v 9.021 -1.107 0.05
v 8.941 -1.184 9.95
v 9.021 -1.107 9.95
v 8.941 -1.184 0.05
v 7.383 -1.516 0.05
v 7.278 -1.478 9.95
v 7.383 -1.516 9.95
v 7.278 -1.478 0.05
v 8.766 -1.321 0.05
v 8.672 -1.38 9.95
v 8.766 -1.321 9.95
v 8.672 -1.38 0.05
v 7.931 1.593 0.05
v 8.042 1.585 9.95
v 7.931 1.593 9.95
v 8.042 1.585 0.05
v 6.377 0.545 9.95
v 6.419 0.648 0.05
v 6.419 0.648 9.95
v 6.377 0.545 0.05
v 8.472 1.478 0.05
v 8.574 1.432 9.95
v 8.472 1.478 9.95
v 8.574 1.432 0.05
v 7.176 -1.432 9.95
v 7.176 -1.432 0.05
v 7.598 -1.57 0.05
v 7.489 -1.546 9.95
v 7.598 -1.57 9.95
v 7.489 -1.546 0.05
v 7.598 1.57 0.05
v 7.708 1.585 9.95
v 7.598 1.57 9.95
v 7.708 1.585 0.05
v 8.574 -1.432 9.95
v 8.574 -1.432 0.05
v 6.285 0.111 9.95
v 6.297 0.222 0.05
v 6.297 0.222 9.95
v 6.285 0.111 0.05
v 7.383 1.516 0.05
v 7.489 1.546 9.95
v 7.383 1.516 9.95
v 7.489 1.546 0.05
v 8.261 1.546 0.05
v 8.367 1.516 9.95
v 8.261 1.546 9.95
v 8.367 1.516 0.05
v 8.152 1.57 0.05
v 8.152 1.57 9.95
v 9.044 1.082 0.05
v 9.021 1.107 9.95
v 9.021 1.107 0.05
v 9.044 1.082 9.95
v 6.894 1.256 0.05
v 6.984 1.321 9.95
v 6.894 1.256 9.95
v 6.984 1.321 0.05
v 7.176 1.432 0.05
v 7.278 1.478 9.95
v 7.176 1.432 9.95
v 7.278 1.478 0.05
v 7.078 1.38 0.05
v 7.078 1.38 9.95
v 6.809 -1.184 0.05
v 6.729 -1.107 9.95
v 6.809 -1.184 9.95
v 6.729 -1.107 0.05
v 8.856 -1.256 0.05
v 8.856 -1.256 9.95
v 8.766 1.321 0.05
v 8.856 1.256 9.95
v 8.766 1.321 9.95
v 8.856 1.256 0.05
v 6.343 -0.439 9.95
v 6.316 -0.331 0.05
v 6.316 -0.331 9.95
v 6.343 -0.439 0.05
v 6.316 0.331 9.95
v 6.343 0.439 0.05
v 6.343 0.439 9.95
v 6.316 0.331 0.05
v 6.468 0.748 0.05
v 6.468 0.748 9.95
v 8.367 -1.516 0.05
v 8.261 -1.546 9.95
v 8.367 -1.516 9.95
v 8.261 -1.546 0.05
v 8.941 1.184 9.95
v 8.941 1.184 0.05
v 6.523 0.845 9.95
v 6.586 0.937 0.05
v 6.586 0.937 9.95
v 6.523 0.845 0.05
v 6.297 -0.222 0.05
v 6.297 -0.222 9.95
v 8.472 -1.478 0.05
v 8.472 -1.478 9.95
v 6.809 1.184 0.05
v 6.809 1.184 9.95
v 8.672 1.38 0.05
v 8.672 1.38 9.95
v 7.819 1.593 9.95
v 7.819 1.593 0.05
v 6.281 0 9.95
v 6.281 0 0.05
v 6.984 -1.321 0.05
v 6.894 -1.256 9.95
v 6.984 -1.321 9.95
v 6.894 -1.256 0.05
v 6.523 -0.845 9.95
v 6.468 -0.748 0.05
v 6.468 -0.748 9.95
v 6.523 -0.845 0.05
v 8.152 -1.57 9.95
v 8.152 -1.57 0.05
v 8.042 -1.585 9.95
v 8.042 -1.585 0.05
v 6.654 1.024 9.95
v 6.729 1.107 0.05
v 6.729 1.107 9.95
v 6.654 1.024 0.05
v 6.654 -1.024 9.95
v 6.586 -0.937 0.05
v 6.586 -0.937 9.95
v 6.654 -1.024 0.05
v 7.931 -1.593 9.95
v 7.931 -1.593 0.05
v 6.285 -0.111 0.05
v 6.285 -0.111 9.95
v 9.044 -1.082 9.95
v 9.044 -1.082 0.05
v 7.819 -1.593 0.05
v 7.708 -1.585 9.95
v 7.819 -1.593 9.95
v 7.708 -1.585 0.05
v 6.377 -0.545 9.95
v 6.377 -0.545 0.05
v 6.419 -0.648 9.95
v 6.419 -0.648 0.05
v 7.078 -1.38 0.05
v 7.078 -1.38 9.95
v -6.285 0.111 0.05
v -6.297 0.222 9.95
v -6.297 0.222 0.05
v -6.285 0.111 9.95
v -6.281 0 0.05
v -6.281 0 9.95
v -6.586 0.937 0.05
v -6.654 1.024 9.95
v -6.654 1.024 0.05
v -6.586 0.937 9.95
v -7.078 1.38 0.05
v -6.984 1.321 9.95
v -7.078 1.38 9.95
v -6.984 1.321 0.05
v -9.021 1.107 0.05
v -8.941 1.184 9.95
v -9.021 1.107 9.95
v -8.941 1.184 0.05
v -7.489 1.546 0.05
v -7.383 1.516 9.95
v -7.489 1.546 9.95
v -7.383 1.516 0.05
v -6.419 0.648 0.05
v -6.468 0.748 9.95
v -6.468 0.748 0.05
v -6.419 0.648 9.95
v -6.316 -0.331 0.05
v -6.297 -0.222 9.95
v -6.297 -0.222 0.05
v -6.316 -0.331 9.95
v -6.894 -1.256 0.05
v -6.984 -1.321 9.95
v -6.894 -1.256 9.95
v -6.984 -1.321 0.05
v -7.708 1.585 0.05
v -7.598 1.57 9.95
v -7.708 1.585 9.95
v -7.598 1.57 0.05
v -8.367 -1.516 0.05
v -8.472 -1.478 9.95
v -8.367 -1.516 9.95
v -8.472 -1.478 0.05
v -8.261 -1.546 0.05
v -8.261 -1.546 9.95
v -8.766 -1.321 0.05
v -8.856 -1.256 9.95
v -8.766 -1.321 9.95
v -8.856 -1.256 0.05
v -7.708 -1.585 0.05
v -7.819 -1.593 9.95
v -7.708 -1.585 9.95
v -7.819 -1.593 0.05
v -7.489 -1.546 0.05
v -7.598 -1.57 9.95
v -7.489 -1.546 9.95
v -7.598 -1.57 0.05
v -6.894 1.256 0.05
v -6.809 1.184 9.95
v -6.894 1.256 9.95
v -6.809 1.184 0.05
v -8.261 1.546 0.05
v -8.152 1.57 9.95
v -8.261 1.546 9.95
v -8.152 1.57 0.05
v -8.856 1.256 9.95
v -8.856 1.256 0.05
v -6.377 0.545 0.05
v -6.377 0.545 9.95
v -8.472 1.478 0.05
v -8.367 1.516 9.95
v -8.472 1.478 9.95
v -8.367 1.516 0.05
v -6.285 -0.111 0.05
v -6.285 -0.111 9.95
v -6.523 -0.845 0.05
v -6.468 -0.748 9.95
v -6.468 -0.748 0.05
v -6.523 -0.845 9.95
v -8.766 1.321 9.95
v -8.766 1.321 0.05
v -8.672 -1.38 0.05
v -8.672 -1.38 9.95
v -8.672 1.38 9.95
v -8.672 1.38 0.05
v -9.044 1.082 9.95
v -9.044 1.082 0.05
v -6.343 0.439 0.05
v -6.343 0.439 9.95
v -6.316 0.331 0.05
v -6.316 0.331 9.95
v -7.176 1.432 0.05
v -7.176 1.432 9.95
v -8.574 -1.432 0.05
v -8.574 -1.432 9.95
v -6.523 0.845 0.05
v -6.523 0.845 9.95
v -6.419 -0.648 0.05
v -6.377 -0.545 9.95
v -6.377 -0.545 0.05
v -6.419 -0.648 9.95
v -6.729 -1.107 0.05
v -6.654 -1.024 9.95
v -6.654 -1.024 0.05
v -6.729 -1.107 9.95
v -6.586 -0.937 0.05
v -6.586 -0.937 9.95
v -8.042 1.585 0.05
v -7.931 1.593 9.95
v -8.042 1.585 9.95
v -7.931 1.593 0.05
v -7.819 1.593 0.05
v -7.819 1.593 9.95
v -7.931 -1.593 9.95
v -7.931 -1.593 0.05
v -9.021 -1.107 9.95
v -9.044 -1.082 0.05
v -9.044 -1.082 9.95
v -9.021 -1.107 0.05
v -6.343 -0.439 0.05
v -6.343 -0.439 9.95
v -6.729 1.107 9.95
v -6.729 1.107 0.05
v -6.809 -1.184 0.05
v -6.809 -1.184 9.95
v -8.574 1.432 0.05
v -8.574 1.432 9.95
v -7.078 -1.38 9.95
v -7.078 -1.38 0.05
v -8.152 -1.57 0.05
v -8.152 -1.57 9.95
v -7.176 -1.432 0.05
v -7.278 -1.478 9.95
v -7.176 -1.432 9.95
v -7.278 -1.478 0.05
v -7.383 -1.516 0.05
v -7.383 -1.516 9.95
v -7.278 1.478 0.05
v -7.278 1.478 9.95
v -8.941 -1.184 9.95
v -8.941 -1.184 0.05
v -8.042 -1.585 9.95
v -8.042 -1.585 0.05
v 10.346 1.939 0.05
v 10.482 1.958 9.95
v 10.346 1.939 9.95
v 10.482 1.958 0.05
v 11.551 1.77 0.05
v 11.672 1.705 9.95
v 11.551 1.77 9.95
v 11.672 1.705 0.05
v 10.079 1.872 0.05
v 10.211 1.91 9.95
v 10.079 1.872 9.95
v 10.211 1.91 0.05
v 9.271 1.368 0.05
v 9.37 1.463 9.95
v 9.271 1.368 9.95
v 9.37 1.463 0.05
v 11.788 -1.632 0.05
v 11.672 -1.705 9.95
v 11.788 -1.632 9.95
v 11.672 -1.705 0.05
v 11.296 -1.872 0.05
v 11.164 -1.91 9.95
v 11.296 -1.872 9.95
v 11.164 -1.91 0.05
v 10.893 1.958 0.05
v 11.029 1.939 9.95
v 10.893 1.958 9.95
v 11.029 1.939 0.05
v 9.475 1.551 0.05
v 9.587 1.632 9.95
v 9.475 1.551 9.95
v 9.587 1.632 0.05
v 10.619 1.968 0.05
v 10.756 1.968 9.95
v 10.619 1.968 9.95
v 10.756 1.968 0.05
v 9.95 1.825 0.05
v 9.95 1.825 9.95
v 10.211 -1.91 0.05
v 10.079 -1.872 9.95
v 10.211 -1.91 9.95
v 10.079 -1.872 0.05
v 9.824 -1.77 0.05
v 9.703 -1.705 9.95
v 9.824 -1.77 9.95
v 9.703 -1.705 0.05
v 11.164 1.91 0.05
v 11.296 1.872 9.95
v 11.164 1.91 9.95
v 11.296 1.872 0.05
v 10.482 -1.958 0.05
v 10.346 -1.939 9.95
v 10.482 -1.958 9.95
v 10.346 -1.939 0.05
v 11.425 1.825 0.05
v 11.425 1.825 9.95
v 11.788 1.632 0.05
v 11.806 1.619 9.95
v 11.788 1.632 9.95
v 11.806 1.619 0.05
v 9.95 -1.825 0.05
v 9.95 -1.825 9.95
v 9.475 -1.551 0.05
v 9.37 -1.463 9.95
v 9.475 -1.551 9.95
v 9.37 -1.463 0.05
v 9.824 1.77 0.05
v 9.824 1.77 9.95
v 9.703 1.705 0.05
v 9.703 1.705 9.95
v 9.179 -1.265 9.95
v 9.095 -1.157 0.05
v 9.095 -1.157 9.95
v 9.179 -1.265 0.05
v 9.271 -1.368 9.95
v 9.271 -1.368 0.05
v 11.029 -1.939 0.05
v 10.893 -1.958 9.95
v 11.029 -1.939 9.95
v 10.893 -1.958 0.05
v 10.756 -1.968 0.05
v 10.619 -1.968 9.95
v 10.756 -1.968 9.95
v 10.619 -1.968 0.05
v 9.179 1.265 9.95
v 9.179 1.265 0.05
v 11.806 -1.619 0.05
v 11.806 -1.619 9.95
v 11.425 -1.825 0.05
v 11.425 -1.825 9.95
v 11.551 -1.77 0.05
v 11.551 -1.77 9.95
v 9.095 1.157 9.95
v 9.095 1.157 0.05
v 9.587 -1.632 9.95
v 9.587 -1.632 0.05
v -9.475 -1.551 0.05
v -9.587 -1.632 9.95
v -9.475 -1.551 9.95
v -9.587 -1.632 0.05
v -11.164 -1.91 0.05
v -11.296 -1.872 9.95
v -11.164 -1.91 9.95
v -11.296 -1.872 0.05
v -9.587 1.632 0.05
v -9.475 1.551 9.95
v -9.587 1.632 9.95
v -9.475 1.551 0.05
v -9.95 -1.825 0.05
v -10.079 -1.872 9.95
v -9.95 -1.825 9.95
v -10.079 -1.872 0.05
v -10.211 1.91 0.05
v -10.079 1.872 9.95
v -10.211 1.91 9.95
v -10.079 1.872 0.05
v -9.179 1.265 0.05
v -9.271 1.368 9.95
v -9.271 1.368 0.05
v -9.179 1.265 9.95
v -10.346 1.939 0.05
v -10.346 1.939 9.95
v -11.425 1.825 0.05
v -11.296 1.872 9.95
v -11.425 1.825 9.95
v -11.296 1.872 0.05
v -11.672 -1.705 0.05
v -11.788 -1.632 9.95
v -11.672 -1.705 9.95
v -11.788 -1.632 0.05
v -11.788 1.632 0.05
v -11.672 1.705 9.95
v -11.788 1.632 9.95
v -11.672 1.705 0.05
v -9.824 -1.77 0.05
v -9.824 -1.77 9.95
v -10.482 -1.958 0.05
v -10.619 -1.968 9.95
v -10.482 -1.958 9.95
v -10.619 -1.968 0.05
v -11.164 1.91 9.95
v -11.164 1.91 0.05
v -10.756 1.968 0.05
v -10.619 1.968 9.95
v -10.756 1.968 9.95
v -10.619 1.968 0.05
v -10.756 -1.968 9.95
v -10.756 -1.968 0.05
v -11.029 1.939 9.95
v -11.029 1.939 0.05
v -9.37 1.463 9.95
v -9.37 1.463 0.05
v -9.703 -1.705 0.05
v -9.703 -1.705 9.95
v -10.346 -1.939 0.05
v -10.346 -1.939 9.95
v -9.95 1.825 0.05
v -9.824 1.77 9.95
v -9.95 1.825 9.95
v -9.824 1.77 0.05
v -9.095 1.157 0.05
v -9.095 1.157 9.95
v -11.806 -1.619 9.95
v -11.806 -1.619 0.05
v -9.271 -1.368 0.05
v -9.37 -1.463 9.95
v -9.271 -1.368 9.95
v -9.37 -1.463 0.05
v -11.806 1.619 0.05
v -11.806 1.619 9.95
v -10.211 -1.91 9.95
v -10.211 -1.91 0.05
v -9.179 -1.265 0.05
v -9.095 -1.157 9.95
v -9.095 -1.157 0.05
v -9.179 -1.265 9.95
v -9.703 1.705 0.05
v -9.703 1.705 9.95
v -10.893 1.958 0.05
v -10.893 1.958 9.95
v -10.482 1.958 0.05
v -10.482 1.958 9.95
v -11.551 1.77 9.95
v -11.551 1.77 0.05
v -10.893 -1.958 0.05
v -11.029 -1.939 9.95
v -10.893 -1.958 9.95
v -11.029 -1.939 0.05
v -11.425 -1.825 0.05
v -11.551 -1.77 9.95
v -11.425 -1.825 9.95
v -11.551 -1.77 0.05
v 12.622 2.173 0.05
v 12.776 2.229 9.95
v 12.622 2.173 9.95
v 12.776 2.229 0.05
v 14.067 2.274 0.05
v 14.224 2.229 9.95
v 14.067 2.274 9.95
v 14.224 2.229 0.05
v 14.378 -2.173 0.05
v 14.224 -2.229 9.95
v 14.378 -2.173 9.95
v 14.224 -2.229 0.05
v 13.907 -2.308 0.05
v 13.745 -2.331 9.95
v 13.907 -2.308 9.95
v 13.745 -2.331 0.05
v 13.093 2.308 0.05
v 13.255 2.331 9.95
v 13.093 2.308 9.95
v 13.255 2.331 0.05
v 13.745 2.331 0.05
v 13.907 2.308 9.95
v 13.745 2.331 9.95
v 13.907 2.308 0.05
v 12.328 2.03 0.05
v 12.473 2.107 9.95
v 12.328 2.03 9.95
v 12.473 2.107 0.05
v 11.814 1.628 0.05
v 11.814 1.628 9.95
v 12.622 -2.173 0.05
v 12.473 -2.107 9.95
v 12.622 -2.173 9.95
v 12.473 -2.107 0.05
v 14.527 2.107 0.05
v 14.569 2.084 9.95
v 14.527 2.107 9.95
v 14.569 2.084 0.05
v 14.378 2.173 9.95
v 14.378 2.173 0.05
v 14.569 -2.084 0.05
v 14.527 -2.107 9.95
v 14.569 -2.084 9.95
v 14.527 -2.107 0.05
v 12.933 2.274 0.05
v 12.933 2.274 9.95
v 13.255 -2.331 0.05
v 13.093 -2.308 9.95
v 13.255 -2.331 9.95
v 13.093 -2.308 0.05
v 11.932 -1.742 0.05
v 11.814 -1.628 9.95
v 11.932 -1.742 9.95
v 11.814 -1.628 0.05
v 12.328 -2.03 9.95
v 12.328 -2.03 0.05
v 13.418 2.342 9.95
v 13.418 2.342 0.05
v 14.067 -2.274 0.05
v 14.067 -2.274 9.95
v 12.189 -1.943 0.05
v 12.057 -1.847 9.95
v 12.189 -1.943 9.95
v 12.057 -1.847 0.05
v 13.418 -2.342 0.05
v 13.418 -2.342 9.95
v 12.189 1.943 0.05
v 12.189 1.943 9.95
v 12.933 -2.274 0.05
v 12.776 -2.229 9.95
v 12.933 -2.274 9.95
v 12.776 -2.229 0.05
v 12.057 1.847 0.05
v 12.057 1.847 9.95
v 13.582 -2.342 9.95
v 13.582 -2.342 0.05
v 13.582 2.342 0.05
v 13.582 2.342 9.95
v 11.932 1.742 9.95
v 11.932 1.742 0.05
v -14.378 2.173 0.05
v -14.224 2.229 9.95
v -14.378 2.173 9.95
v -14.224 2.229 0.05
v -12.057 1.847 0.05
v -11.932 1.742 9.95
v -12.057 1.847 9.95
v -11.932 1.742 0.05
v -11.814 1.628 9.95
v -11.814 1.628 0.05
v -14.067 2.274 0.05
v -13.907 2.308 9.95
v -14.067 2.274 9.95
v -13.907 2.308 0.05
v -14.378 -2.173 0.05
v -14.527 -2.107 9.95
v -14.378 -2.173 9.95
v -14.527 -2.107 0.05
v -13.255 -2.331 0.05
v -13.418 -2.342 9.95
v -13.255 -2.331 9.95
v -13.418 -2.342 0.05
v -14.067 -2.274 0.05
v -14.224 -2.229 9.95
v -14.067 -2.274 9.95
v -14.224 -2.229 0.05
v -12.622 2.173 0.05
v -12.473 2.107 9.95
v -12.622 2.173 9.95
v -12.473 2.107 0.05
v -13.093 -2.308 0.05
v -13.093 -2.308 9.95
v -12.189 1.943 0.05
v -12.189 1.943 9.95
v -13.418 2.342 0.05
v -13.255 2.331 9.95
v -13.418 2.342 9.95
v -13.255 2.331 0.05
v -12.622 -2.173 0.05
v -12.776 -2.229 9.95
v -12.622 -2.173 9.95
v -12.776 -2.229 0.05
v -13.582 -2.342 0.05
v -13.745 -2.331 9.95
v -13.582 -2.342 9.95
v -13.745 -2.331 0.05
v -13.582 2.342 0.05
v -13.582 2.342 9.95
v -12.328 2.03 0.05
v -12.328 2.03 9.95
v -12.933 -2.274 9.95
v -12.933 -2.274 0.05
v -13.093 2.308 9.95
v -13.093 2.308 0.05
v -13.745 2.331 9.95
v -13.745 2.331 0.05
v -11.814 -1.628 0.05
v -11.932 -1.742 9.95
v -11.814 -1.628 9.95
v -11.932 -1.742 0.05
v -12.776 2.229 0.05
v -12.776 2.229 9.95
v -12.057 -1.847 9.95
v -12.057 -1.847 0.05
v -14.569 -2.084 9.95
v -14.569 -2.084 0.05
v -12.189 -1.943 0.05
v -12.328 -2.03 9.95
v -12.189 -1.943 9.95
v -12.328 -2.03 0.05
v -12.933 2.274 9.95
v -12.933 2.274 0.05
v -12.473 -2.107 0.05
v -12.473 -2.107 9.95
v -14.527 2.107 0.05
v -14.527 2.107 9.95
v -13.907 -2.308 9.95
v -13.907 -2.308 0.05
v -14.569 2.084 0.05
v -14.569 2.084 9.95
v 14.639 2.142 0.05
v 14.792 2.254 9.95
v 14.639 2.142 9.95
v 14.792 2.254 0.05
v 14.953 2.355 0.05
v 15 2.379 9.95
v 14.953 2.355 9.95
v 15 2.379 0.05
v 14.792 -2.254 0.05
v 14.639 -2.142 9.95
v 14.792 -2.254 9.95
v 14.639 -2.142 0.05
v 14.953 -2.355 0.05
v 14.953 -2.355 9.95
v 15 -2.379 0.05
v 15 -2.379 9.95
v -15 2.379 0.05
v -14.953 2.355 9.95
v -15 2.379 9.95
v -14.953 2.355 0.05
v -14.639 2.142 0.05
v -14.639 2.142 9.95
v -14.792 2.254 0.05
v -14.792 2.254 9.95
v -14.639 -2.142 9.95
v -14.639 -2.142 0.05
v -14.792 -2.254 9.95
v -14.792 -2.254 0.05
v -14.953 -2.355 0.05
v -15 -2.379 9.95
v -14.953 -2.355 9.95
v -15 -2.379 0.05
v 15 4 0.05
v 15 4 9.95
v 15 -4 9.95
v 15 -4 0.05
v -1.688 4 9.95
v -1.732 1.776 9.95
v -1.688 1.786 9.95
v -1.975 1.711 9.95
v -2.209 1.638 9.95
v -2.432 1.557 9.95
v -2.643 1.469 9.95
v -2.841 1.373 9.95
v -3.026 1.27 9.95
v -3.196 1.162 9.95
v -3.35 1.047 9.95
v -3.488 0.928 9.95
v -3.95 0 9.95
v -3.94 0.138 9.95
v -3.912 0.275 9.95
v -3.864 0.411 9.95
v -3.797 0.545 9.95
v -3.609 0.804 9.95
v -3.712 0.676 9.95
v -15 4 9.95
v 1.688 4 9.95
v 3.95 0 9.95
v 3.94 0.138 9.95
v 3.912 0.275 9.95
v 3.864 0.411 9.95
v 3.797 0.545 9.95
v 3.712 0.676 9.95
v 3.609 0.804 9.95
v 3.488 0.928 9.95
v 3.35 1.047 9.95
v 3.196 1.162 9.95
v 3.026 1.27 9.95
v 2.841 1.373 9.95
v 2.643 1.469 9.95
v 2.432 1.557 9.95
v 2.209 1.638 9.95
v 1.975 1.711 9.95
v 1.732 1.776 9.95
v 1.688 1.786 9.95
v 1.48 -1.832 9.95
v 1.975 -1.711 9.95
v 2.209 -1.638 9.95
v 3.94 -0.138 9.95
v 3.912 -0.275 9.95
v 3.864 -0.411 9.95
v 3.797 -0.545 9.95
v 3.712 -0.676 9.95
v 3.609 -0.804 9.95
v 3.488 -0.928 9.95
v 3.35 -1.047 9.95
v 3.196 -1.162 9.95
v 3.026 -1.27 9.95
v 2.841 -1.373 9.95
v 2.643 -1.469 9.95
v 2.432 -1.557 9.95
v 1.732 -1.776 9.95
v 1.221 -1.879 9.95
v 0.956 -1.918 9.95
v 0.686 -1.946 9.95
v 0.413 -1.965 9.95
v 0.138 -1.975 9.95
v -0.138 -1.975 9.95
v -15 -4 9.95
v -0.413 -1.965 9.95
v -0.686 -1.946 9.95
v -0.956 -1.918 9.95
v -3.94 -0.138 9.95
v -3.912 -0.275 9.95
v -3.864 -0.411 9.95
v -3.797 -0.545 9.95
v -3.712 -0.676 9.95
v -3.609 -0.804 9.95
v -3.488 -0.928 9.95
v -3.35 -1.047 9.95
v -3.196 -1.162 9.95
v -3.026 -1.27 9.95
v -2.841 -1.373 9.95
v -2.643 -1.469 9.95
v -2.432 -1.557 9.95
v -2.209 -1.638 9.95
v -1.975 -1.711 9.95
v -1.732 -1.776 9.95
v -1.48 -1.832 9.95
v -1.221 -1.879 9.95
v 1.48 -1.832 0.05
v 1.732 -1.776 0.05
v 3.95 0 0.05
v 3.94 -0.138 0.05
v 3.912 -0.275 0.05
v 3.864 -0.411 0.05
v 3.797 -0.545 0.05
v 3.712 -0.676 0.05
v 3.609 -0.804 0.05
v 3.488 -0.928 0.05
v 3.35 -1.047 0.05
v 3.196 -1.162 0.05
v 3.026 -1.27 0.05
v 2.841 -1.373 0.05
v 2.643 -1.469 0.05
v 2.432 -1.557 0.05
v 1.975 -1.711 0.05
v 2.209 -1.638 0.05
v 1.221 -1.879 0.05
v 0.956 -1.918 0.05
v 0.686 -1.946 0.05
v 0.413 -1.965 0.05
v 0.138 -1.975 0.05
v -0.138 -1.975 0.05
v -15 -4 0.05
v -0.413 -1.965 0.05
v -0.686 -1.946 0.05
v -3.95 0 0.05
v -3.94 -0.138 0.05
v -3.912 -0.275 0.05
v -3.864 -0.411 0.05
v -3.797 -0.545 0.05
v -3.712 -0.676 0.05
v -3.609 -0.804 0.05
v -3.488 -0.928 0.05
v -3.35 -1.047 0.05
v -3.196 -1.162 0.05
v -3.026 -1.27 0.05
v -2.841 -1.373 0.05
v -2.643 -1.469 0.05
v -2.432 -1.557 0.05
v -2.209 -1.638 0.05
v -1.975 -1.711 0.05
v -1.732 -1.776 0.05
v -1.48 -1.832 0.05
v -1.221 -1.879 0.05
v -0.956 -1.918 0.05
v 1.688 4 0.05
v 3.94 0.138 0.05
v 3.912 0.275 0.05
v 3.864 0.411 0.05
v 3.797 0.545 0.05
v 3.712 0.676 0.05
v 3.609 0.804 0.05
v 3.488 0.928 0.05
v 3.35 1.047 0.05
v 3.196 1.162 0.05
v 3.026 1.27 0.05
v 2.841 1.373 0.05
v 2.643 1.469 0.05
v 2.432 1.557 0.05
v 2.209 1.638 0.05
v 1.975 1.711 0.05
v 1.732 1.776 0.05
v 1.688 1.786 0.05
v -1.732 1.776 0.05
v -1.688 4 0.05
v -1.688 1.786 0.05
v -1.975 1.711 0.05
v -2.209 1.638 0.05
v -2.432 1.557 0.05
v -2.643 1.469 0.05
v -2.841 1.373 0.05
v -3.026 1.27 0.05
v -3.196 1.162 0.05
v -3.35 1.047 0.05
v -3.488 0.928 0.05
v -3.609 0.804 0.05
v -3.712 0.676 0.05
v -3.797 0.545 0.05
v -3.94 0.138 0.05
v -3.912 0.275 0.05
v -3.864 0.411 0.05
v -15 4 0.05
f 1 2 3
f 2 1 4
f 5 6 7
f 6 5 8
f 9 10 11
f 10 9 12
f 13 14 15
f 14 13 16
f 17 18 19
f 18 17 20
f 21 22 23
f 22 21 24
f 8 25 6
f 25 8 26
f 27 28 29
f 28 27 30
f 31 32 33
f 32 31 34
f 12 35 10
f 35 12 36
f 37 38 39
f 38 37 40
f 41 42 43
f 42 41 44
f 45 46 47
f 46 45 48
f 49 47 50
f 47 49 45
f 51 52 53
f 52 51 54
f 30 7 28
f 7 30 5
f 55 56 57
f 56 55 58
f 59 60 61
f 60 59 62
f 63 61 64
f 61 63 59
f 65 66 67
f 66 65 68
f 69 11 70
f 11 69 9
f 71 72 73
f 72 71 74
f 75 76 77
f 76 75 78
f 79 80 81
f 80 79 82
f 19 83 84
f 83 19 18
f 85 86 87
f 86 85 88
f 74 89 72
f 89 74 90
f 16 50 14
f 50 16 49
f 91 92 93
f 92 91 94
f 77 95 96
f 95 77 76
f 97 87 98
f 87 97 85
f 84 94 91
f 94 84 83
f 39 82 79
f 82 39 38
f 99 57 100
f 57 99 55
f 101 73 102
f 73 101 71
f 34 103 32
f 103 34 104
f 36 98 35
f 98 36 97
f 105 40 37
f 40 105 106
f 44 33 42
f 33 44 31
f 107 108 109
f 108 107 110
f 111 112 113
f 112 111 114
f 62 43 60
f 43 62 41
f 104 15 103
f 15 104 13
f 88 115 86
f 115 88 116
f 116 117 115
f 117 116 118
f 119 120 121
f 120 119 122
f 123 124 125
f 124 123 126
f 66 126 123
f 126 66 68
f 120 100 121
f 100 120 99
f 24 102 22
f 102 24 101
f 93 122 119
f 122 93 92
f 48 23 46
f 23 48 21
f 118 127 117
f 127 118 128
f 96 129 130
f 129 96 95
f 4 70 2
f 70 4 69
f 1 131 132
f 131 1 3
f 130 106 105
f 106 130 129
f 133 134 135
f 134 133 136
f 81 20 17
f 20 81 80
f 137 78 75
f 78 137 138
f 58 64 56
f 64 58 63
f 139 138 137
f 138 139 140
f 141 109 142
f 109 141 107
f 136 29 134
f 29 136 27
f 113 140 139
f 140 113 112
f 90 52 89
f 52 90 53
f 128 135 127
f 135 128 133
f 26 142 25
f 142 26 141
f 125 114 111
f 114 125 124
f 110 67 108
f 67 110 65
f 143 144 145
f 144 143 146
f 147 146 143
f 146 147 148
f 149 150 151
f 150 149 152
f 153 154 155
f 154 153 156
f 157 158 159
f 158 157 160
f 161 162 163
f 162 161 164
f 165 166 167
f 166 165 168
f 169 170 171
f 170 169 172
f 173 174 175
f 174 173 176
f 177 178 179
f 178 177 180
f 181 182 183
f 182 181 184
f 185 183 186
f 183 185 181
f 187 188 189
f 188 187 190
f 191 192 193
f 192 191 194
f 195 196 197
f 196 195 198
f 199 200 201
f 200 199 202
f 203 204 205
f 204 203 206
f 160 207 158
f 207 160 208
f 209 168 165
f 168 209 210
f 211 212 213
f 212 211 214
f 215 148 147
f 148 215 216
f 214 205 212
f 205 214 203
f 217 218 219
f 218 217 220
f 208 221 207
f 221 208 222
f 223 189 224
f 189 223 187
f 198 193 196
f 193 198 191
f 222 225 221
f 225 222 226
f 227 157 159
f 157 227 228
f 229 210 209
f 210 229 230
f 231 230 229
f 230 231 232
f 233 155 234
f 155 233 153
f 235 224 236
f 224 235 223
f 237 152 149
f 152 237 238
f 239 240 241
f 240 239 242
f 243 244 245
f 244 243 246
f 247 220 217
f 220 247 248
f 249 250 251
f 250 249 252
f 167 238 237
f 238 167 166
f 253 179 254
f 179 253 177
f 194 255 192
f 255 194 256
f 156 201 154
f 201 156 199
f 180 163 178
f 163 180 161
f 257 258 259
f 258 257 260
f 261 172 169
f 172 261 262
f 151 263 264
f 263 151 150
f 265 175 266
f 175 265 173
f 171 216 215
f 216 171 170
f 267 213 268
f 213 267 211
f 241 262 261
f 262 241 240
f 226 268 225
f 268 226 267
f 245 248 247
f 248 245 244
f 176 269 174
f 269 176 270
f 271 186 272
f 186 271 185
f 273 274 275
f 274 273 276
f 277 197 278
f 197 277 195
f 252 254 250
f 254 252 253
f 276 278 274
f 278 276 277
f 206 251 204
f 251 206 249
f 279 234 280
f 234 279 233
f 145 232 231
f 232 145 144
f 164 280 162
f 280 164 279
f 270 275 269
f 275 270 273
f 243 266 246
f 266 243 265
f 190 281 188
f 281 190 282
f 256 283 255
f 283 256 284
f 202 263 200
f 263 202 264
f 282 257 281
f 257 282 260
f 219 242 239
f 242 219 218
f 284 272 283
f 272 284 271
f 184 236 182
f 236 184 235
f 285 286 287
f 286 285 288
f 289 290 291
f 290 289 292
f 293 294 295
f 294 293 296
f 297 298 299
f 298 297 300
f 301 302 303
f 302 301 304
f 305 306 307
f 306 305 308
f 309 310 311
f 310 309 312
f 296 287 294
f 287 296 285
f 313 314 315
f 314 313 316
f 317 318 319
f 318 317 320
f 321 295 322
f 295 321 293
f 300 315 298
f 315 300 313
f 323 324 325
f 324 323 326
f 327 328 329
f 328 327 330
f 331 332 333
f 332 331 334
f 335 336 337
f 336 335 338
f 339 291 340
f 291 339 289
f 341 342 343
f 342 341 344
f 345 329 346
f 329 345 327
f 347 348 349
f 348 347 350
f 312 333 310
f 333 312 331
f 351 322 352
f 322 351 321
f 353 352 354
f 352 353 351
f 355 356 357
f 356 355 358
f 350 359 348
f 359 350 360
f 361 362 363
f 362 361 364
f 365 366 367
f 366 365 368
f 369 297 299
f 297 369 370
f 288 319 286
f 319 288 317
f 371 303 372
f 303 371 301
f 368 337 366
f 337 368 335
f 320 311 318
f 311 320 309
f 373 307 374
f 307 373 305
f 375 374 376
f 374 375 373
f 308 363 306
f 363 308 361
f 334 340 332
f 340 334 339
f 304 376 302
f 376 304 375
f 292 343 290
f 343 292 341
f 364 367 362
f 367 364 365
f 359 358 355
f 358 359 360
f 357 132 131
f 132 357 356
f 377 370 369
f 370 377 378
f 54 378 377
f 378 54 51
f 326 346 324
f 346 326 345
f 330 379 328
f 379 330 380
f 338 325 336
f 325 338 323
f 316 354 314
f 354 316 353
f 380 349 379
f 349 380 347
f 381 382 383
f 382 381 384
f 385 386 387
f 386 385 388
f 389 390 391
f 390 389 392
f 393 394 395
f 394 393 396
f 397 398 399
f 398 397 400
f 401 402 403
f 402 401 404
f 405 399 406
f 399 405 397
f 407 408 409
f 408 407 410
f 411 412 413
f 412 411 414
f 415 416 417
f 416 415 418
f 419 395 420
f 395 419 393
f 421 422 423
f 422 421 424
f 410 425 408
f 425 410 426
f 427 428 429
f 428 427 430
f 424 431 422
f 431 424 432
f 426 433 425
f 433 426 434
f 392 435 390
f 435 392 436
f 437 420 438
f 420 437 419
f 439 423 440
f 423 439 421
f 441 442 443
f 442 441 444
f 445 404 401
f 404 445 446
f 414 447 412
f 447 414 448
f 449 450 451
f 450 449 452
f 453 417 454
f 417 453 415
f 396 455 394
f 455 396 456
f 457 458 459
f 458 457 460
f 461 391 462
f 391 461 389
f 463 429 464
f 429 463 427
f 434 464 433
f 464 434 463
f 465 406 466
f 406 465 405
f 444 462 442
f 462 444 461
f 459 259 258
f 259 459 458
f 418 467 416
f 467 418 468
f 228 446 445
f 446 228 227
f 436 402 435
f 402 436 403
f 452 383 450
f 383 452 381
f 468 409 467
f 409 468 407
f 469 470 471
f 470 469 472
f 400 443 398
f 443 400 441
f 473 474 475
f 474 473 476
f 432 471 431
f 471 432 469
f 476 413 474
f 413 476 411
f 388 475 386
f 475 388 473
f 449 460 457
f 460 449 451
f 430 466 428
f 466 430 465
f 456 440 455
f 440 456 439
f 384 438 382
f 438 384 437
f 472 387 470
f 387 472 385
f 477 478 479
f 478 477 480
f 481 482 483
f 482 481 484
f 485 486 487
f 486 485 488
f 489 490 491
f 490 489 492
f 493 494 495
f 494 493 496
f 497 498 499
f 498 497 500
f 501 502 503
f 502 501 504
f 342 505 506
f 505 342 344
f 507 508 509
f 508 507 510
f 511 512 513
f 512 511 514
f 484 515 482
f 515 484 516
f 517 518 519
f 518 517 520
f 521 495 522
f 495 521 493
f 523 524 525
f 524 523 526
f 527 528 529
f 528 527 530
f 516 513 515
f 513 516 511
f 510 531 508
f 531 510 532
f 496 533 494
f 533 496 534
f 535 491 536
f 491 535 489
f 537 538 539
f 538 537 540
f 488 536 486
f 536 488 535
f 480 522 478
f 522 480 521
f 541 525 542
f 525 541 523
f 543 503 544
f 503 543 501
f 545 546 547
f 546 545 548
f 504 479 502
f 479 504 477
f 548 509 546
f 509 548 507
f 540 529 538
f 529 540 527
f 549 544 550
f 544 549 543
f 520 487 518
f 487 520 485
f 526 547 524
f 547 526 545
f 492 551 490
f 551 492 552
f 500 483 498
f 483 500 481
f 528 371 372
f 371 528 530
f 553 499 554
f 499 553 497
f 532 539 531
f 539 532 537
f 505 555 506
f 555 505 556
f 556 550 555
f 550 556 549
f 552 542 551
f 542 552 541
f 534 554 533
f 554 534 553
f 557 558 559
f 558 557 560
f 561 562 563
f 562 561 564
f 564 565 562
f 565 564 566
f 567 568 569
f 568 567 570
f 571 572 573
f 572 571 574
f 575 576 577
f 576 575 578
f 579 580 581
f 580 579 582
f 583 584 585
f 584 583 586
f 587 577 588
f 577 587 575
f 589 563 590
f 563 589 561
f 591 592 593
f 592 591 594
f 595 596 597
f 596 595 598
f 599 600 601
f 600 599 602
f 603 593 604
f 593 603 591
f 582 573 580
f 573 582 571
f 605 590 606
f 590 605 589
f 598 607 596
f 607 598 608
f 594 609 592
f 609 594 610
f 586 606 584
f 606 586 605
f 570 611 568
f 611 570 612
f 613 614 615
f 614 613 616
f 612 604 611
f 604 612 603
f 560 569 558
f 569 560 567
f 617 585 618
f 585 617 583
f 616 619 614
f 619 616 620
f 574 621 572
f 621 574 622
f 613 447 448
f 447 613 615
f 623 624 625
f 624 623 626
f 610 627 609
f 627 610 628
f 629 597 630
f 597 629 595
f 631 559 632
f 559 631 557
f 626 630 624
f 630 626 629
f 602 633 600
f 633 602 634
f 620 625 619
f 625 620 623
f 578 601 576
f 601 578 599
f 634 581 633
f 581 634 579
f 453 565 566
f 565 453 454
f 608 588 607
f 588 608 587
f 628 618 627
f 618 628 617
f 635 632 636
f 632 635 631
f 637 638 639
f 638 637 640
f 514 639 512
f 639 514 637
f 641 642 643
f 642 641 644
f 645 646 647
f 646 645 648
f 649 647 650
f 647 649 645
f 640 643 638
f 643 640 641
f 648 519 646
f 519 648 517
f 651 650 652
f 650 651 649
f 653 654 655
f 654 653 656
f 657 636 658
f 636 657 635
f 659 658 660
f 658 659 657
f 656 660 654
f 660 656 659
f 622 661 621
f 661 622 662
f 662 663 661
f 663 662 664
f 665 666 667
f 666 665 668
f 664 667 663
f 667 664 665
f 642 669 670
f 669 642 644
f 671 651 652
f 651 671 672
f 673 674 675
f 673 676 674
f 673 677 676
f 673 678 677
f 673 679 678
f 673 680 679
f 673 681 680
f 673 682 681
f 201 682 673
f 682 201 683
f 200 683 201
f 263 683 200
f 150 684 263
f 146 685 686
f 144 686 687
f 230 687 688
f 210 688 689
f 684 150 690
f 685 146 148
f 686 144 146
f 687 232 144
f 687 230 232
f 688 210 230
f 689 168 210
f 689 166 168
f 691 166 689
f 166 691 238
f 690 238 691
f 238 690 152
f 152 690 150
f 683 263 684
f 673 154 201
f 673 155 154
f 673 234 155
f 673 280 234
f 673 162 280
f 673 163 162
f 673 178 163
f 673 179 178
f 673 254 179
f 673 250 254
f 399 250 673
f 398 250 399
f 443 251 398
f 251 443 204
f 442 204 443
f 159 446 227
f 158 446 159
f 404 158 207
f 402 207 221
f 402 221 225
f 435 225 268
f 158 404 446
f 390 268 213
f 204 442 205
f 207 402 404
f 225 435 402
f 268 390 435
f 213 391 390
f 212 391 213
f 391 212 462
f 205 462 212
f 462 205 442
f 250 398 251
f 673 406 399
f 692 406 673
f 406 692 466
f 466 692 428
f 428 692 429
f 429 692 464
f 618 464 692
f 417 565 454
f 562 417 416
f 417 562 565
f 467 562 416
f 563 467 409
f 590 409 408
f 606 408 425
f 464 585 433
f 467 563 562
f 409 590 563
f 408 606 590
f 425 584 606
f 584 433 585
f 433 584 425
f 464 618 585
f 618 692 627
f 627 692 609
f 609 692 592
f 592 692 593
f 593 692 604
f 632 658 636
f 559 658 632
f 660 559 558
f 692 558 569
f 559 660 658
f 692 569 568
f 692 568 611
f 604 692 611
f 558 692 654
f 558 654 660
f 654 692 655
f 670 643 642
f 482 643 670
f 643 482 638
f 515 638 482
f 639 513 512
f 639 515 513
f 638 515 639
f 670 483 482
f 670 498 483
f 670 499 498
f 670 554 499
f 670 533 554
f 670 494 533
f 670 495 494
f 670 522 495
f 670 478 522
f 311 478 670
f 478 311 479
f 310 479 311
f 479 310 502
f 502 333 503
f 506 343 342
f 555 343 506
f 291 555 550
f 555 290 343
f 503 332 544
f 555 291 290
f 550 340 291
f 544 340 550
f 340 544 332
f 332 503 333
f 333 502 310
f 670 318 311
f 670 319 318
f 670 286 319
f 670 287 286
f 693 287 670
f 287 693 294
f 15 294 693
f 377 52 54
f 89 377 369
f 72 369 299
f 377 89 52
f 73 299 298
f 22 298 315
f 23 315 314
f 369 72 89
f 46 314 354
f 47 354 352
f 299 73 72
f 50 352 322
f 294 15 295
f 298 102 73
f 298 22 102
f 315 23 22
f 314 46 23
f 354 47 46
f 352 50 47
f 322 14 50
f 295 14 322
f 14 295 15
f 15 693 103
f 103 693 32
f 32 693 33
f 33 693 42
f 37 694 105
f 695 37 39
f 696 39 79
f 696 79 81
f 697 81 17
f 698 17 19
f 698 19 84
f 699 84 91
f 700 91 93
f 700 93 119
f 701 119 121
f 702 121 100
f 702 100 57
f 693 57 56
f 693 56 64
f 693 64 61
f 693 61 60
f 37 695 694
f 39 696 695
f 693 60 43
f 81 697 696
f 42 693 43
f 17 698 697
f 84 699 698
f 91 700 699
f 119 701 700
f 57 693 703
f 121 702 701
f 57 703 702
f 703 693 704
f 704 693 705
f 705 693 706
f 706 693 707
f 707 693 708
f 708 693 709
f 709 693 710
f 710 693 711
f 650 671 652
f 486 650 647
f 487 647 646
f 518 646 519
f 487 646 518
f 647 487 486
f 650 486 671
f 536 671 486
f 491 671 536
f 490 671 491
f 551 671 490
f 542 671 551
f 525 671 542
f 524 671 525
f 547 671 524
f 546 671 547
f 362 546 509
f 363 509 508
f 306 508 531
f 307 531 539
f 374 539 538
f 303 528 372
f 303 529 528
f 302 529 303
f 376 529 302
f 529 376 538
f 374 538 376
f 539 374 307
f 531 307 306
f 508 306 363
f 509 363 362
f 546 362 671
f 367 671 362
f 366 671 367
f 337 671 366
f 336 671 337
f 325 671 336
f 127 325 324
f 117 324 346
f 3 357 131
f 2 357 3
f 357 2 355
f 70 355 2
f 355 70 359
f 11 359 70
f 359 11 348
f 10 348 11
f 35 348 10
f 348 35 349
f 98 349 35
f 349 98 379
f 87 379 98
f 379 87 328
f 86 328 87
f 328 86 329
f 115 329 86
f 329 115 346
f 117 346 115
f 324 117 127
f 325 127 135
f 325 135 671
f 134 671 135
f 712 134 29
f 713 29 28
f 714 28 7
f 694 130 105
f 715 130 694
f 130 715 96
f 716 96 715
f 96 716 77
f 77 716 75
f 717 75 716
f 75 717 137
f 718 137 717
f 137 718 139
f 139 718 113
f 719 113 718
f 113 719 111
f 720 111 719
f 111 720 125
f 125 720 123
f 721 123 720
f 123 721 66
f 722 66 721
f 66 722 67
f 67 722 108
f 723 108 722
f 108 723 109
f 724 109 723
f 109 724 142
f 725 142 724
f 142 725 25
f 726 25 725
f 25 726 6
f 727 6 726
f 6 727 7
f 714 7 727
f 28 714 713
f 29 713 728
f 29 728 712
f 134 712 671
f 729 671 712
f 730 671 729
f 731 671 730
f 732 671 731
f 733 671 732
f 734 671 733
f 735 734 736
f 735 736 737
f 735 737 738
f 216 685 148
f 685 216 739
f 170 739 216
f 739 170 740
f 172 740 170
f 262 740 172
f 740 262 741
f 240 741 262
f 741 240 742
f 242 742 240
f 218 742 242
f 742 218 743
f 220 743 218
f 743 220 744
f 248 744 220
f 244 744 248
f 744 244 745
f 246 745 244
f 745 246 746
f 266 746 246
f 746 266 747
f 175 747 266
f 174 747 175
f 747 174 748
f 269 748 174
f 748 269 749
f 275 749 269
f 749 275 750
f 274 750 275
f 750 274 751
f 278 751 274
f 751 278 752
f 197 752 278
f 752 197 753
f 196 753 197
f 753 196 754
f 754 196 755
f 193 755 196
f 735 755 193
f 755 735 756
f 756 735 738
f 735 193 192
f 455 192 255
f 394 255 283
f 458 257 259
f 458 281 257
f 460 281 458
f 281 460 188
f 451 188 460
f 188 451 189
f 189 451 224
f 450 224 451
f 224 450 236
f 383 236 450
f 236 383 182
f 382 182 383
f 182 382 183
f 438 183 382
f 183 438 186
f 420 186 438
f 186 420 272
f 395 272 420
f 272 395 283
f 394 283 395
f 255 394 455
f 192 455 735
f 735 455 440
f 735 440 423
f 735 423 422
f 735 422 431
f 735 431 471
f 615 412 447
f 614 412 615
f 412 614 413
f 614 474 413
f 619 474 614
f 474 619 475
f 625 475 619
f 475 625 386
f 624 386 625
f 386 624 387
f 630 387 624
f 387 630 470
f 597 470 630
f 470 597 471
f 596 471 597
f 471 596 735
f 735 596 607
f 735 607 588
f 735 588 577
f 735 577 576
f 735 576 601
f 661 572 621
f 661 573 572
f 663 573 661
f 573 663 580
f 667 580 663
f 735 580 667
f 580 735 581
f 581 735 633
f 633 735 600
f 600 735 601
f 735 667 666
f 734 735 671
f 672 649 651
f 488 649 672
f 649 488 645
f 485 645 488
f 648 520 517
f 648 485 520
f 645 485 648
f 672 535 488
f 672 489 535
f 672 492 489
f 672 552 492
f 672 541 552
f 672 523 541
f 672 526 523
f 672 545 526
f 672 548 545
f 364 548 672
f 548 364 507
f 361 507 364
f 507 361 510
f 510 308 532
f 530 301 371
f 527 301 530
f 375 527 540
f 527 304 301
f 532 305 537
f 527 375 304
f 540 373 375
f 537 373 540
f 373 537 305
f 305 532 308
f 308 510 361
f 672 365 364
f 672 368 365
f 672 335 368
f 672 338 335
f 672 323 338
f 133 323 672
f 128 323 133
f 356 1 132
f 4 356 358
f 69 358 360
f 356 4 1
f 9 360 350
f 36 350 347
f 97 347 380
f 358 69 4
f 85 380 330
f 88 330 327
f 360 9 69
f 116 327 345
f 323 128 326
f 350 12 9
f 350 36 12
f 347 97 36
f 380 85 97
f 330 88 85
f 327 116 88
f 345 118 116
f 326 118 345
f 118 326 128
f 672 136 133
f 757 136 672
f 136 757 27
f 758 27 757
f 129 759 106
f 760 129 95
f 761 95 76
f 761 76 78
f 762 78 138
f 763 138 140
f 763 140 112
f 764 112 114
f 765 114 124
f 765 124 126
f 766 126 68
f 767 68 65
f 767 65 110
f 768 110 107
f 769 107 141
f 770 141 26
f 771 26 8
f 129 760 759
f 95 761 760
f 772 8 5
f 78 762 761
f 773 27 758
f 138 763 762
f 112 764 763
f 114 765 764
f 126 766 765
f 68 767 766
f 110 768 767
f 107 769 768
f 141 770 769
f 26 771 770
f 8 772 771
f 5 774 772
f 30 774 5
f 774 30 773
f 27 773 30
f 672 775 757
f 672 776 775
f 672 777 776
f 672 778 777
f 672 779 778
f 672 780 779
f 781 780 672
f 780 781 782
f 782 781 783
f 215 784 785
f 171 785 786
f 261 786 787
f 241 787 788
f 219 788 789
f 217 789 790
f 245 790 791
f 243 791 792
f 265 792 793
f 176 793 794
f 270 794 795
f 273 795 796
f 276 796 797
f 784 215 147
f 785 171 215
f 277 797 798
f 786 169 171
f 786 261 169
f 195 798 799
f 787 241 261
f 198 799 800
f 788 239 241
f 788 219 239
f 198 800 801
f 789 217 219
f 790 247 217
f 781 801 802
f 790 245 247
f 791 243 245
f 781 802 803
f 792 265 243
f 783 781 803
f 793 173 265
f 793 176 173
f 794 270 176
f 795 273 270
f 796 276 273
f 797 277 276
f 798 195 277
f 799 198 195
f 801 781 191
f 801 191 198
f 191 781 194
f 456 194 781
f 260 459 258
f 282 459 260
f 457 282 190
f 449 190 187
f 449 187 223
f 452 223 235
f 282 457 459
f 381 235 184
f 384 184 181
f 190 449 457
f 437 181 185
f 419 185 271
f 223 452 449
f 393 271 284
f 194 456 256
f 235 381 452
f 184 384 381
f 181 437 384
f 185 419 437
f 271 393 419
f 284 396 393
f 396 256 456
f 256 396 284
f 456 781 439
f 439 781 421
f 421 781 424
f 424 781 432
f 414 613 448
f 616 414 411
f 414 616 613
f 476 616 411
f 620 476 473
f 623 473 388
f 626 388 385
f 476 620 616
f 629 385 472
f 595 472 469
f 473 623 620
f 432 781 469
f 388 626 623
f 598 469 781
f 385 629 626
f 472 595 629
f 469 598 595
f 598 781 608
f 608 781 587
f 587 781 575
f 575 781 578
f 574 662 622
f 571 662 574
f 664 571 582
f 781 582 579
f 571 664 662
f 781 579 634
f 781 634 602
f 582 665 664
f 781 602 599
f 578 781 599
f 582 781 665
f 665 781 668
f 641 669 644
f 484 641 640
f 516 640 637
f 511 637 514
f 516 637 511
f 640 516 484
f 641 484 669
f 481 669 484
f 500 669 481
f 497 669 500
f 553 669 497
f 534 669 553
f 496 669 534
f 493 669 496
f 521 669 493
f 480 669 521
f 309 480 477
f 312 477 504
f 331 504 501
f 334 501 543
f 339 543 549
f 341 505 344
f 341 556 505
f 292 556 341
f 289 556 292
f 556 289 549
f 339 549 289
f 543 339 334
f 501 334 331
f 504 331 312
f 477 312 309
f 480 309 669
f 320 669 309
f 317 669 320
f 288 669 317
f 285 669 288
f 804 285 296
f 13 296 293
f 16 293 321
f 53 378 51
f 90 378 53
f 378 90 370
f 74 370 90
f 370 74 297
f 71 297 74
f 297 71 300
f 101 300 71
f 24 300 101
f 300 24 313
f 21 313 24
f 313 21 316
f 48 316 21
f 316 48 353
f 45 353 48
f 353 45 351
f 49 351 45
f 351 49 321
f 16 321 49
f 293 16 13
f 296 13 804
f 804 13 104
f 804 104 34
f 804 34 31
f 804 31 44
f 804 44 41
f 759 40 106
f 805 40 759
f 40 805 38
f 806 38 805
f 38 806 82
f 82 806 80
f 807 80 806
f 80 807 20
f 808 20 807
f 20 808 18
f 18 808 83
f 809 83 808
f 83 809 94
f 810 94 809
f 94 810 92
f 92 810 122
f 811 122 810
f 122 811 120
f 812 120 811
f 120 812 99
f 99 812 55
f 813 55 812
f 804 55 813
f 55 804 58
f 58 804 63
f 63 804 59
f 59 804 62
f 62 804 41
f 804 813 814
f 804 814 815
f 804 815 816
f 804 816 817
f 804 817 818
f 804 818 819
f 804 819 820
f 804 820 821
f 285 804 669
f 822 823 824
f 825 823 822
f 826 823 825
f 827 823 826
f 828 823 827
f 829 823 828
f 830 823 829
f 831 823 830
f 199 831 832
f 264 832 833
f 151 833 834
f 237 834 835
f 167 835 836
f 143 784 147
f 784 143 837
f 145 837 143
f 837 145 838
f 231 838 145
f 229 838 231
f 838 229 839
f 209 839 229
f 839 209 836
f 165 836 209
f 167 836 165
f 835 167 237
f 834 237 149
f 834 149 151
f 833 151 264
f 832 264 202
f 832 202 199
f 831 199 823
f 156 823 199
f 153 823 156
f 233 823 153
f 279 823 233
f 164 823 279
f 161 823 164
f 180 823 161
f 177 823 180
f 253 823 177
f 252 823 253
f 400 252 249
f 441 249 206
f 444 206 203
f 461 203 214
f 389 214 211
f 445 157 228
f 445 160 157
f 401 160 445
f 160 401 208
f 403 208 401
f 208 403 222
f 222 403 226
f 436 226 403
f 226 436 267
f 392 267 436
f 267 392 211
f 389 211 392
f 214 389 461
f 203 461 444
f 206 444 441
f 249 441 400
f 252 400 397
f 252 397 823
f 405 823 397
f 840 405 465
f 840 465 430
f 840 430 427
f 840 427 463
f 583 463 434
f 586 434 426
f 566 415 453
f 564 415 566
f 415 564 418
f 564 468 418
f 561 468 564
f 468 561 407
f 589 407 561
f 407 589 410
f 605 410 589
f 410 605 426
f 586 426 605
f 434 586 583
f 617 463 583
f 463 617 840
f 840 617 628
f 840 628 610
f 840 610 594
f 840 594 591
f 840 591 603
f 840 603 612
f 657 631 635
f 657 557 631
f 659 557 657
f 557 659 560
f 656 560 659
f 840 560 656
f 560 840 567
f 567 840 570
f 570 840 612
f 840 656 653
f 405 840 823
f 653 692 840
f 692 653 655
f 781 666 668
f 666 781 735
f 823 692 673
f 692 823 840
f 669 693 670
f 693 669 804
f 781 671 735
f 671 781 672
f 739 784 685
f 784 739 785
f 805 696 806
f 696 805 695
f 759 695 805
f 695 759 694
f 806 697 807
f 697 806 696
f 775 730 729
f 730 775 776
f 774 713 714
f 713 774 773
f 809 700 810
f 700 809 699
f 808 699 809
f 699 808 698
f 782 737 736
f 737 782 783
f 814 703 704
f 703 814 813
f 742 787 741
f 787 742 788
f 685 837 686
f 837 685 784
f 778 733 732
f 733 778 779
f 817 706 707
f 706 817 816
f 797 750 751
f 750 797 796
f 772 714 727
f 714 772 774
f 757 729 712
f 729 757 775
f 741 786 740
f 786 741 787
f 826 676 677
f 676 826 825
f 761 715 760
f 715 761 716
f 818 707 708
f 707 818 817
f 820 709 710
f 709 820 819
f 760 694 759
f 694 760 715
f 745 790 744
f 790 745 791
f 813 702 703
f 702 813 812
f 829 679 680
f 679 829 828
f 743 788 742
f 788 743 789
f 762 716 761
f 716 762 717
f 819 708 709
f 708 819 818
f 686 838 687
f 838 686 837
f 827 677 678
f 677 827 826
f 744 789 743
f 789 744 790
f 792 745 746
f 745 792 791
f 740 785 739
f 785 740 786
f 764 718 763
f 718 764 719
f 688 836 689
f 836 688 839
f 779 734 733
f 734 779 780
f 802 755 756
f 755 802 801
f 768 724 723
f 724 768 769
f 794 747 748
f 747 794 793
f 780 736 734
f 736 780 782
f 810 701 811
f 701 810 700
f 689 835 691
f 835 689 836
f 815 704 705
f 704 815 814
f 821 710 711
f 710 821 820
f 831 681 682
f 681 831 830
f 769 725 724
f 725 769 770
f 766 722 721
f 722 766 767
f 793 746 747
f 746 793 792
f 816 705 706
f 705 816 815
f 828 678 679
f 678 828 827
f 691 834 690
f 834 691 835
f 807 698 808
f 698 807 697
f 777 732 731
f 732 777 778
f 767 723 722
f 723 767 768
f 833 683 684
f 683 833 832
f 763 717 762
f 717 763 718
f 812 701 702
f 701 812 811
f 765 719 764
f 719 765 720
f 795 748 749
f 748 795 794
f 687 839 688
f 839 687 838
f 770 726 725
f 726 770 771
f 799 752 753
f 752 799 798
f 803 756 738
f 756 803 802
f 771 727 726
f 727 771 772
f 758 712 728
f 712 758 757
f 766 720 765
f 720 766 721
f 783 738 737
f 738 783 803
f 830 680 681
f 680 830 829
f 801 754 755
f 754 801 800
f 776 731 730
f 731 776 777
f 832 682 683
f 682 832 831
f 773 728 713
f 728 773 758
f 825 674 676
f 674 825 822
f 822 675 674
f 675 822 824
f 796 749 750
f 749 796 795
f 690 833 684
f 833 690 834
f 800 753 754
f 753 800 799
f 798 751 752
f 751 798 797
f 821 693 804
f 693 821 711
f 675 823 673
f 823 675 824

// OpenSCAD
$fn = 90;
CABLE_D1 = 5.5;
CABLE_D2 = 3.5 + .25;

HEIGHT = 10;

BLOCK_LENGTH = 30;
BLOCK_WIDTH  = 8;

TOLERANCE = 0.2;

EPSILON = 0.05;


module hole_central_1() {
	resize([CABLE_D1*1.4 + TOLERANCE, CABLE_D2+TOLERANCE, HEIGHT])
	cylinder(d=1, h=HEIGHT);
}

module hole_central_3() {
	translate([-CABLE_D2*.9/2, 0, 0])
	cube([CABLE_D2*.9, BLOCK_WIDTH, HEIGHT]);
}

difference() {
	translate([-BLOCK_LENGTH/2, -BLOCK_WIDTH/2, EPSILON])
	cube([BLOCK_LENGTH, BLOCK_WIDTH, HEIGHT-EPSILON*2]);
	hole_central_1();

	hole_central_3();

	for (i=[0:5]) {
		j = i; //i==0 ? 1 : (i==1 ? 0 : i);

		translate([CABLE_D2*2.1 + i*CABLE_D2*.75 , 0, 0])
		cylinder(d=CABLE_D2 * (.85 +j/5) , h=HEIGHT);

		translate([-CABLE_D2*2.1 - i*CABLE_D2*.75 , 0, 0])
		cylinder(d=CABLE_D2 * (.85 +j/5) , h=HEIGHT);
	}
}
